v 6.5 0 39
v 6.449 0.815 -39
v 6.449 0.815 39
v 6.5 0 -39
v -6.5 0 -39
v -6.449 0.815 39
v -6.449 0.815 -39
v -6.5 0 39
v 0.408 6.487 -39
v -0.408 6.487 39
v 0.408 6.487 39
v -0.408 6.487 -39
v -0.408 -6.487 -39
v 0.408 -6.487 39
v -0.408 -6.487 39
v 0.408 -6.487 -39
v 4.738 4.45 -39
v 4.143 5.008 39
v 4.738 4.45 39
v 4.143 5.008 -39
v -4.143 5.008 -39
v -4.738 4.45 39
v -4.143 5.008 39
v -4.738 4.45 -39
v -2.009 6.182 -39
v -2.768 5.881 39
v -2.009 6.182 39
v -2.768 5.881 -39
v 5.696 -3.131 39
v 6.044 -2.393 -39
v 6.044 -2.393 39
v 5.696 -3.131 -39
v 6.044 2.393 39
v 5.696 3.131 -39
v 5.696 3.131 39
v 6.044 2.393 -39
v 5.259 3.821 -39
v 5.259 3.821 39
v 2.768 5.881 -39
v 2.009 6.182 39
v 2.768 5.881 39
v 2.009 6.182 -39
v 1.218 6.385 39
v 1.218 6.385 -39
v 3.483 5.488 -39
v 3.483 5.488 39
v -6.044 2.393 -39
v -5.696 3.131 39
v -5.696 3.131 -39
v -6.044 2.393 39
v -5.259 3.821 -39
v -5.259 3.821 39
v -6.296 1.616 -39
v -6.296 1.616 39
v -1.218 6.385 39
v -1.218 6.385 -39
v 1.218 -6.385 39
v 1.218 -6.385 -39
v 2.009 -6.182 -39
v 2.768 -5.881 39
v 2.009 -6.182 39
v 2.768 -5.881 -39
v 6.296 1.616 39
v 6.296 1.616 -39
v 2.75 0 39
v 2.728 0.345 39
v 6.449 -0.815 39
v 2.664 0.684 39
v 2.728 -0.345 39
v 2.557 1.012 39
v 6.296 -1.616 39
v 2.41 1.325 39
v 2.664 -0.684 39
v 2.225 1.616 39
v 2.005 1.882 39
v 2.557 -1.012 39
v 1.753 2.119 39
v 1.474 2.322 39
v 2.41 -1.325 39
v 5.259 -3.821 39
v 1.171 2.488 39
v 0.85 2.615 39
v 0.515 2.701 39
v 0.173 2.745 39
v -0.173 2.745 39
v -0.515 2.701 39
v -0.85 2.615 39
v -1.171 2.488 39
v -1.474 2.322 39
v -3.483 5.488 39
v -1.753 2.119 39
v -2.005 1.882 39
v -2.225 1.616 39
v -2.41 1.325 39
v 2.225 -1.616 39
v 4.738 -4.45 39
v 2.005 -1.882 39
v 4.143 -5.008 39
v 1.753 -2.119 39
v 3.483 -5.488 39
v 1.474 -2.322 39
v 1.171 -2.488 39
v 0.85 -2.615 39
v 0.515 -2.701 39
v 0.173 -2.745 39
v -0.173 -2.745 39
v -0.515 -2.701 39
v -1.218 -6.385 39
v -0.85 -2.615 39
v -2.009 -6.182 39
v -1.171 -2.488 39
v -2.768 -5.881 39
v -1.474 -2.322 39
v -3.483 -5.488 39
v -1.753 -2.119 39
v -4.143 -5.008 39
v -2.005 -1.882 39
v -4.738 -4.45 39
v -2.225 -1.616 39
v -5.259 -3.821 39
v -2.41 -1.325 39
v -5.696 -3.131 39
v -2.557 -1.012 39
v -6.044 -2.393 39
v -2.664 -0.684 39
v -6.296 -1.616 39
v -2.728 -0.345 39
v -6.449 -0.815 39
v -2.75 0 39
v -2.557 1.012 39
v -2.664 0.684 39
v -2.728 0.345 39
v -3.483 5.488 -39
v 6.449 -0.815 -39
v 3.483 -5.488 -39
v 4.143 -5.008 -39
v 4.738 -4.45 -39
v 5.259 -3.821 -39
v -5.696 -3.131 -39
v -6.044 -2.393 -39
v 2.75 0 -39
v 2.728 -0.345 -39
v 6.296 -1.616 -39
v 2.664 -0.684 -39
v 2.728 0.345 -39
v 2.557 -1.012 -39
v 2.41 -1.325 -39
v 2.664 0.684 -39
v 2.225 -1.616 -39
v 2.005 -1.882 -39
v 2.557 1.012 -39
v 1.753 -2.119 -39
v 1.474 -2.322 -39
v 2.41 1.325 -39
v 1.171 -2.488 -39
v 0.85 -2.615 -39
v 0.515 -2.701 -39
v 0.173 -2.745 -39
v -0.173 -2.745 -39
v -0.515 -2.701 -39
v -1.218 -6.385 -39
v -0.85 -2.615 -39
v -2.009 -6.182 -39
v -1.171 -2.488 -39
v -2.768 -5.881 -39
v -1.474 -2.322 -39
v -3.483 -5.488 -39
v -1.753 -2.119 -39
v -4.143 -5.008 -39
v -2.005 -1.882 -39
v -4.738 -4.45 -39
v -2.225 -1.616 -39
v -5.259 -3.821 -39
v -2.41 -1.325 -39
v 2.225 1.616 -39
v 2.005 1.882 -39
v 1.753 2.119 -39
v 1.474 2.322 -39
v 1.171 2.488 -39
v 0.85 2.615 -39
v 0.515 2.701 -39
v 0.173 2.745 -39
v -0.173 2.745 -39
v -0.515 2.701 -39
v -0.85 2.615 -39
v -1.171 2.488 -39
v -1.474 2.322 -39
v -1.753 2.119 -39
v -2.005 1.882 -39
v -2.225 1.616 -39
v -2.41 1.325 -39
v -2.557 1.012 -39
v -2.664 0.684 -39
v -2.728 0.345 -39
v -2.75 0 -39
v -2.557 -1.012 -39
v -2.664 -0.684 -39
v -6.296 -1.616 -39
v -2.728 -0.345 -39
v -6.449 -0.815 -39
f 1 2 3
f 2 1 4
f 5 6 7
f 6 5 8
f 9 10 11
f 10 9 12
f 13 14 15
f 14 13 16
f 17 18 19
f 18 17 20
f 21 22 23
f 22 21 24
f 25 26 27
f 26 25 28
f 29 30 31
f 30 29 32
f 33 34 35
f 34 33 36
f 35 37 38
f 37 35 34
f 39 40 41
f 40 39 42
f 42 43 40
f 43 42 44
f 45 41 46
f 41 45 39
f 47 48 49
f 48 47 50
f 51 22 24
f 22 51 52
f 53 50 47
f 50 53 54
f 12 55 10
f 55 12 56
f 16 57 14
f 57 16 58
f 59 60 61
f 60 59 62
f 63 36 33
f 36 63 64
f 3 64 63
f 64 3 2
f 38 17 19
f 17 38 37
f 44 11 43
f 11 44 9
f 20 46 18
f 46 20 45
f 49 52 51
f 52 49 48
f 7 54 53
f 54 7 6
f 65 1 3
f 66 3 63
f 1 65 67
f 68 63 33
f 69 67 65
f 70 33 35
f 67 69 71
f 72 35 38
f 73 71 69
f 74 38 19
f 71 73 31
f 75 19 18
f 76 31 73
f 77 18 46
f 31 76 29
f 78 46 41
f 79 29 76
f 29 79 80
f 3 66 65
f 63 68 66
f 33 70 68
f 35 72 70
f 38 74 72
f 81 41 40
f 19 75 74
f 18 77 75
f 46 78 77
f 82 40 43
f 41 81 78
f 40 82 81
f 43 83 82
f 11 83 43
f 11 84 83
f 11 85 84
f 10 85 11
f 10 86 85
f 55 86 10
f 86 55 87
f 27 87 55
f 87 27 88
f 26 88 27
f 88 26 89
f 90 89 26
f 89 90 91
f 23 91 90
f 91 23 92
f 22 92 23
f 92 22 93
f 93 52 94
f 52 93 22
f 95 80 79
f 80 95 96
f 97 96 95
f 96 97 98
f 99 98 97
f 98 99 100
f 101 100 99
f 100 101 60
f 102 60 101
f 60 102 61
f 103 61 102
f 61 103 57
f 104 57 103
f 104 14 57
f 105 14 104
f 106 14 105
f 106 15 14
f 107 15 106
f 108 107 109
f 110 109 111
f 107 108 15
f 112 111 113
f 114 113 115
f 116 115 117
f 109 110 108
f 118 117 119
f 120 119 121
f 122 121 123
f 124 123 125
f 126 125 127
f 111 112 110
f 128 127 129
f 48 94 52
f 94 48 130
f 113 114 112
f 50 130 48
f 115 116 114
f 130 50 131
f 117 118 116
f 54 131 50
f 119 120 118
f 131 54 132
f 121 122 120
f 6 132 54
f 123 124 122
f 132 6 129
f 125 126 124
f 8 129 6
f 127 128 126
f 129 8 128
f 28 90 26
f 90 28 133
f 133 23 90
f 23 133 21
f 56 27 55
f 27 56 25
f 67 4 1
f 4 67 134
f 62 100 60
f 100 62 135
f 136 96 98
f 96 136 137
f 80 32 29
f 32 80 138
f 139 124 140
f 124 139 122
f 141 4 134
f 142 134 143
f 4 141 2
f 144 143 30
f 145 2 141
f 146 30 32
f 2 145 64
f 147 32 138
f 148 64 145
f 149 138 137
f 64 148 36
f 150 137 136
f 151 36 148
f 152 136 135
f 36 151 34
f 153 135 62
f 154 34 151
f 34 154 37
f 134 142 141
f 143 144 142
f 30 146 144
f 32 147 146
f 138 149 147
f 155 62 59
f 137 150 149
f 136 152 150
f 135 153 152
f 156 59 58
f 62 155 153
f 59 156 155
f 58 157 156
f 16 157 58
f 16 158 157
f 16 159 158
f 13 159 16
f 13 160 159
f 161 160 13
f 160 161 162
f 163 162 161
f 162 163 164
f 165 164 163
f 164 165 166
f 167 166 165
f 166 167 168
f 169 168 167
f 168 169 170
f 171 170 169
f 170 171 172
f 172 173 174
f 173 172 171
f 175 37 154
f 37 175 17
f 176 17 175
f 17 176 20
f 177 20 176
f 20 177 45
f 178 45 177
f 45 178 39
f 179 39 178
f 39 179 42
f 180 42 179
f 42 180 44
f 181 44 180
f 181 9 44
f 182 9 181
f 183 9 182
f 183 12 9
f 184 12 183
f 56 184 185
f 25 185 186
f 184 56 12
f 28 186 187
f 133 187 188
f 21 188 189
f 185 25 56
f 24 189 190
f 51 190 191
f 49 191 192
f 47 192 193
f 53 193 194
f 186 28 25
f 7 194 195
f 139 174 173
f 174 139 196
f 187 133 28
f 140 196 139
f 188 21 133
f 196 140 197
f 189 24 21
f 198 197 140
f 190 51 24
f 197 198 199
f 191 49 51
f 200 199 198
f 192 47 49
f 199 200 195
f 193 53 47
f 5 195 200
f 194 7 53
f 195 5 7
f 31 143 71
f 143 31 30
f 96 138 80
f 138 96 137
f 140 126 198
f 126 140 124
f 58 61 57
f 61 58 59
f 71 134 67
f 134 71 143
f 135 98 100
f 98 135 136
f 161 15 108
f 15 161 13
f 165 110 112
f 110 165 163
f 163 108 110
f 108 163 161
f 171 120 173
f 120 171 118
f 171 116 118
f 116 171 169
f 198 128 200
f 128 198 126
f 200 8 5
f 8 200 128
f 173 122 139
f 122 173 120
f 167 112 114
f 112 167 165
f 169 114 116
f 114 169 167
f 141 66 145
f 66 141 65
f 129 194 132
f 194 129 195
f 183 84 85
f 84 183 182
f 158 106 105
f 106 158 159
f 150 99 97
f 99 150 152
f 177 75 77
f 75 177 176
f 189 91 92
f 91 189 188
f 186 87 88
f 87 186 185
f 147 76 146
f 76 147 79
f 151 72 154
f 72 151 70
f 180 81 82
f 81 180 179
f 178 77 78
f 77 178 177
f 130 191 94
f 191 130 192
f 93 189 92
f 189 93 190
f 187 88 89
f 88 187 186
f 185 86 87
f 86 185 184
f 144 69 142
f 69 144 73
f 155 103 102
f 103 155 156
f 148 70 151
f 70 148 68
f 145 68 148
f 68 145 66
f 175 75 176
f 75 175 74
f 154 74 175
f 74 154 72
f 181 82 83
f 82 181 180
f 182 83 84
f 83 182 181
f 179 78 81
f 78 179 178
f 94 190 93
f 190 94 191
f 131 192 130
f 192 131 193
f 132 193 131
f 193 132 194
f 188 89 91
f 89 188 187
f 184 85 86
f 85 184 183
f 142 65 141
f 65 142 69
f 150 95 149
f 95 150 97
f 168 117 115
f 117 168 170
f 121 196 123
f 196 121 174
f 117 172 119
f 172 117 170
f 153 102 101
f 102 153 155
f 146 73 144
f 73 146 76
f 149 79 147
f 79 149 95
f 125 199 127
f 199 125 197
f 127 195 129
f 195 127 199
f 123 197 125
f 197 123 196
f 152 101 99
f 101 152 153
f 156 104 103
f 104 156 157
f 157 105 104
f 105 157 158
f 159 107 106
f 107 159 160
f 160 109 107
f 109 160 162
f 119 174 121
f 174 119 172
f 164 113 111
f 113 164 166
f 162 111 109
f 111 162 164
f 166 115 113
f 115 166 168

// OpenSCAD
$fn = 50;


difference() {
	union() {
		translate(v = [0, 0, -39.0000000000]) {
			cylinder(h = 78, r = 6.5000000000);
		}
	}
	union() {
		translate(v = [0, 0, -100.0000000000]) {
			cylinder(h = 200, r = 2.7500000000);
		}
	}
}
